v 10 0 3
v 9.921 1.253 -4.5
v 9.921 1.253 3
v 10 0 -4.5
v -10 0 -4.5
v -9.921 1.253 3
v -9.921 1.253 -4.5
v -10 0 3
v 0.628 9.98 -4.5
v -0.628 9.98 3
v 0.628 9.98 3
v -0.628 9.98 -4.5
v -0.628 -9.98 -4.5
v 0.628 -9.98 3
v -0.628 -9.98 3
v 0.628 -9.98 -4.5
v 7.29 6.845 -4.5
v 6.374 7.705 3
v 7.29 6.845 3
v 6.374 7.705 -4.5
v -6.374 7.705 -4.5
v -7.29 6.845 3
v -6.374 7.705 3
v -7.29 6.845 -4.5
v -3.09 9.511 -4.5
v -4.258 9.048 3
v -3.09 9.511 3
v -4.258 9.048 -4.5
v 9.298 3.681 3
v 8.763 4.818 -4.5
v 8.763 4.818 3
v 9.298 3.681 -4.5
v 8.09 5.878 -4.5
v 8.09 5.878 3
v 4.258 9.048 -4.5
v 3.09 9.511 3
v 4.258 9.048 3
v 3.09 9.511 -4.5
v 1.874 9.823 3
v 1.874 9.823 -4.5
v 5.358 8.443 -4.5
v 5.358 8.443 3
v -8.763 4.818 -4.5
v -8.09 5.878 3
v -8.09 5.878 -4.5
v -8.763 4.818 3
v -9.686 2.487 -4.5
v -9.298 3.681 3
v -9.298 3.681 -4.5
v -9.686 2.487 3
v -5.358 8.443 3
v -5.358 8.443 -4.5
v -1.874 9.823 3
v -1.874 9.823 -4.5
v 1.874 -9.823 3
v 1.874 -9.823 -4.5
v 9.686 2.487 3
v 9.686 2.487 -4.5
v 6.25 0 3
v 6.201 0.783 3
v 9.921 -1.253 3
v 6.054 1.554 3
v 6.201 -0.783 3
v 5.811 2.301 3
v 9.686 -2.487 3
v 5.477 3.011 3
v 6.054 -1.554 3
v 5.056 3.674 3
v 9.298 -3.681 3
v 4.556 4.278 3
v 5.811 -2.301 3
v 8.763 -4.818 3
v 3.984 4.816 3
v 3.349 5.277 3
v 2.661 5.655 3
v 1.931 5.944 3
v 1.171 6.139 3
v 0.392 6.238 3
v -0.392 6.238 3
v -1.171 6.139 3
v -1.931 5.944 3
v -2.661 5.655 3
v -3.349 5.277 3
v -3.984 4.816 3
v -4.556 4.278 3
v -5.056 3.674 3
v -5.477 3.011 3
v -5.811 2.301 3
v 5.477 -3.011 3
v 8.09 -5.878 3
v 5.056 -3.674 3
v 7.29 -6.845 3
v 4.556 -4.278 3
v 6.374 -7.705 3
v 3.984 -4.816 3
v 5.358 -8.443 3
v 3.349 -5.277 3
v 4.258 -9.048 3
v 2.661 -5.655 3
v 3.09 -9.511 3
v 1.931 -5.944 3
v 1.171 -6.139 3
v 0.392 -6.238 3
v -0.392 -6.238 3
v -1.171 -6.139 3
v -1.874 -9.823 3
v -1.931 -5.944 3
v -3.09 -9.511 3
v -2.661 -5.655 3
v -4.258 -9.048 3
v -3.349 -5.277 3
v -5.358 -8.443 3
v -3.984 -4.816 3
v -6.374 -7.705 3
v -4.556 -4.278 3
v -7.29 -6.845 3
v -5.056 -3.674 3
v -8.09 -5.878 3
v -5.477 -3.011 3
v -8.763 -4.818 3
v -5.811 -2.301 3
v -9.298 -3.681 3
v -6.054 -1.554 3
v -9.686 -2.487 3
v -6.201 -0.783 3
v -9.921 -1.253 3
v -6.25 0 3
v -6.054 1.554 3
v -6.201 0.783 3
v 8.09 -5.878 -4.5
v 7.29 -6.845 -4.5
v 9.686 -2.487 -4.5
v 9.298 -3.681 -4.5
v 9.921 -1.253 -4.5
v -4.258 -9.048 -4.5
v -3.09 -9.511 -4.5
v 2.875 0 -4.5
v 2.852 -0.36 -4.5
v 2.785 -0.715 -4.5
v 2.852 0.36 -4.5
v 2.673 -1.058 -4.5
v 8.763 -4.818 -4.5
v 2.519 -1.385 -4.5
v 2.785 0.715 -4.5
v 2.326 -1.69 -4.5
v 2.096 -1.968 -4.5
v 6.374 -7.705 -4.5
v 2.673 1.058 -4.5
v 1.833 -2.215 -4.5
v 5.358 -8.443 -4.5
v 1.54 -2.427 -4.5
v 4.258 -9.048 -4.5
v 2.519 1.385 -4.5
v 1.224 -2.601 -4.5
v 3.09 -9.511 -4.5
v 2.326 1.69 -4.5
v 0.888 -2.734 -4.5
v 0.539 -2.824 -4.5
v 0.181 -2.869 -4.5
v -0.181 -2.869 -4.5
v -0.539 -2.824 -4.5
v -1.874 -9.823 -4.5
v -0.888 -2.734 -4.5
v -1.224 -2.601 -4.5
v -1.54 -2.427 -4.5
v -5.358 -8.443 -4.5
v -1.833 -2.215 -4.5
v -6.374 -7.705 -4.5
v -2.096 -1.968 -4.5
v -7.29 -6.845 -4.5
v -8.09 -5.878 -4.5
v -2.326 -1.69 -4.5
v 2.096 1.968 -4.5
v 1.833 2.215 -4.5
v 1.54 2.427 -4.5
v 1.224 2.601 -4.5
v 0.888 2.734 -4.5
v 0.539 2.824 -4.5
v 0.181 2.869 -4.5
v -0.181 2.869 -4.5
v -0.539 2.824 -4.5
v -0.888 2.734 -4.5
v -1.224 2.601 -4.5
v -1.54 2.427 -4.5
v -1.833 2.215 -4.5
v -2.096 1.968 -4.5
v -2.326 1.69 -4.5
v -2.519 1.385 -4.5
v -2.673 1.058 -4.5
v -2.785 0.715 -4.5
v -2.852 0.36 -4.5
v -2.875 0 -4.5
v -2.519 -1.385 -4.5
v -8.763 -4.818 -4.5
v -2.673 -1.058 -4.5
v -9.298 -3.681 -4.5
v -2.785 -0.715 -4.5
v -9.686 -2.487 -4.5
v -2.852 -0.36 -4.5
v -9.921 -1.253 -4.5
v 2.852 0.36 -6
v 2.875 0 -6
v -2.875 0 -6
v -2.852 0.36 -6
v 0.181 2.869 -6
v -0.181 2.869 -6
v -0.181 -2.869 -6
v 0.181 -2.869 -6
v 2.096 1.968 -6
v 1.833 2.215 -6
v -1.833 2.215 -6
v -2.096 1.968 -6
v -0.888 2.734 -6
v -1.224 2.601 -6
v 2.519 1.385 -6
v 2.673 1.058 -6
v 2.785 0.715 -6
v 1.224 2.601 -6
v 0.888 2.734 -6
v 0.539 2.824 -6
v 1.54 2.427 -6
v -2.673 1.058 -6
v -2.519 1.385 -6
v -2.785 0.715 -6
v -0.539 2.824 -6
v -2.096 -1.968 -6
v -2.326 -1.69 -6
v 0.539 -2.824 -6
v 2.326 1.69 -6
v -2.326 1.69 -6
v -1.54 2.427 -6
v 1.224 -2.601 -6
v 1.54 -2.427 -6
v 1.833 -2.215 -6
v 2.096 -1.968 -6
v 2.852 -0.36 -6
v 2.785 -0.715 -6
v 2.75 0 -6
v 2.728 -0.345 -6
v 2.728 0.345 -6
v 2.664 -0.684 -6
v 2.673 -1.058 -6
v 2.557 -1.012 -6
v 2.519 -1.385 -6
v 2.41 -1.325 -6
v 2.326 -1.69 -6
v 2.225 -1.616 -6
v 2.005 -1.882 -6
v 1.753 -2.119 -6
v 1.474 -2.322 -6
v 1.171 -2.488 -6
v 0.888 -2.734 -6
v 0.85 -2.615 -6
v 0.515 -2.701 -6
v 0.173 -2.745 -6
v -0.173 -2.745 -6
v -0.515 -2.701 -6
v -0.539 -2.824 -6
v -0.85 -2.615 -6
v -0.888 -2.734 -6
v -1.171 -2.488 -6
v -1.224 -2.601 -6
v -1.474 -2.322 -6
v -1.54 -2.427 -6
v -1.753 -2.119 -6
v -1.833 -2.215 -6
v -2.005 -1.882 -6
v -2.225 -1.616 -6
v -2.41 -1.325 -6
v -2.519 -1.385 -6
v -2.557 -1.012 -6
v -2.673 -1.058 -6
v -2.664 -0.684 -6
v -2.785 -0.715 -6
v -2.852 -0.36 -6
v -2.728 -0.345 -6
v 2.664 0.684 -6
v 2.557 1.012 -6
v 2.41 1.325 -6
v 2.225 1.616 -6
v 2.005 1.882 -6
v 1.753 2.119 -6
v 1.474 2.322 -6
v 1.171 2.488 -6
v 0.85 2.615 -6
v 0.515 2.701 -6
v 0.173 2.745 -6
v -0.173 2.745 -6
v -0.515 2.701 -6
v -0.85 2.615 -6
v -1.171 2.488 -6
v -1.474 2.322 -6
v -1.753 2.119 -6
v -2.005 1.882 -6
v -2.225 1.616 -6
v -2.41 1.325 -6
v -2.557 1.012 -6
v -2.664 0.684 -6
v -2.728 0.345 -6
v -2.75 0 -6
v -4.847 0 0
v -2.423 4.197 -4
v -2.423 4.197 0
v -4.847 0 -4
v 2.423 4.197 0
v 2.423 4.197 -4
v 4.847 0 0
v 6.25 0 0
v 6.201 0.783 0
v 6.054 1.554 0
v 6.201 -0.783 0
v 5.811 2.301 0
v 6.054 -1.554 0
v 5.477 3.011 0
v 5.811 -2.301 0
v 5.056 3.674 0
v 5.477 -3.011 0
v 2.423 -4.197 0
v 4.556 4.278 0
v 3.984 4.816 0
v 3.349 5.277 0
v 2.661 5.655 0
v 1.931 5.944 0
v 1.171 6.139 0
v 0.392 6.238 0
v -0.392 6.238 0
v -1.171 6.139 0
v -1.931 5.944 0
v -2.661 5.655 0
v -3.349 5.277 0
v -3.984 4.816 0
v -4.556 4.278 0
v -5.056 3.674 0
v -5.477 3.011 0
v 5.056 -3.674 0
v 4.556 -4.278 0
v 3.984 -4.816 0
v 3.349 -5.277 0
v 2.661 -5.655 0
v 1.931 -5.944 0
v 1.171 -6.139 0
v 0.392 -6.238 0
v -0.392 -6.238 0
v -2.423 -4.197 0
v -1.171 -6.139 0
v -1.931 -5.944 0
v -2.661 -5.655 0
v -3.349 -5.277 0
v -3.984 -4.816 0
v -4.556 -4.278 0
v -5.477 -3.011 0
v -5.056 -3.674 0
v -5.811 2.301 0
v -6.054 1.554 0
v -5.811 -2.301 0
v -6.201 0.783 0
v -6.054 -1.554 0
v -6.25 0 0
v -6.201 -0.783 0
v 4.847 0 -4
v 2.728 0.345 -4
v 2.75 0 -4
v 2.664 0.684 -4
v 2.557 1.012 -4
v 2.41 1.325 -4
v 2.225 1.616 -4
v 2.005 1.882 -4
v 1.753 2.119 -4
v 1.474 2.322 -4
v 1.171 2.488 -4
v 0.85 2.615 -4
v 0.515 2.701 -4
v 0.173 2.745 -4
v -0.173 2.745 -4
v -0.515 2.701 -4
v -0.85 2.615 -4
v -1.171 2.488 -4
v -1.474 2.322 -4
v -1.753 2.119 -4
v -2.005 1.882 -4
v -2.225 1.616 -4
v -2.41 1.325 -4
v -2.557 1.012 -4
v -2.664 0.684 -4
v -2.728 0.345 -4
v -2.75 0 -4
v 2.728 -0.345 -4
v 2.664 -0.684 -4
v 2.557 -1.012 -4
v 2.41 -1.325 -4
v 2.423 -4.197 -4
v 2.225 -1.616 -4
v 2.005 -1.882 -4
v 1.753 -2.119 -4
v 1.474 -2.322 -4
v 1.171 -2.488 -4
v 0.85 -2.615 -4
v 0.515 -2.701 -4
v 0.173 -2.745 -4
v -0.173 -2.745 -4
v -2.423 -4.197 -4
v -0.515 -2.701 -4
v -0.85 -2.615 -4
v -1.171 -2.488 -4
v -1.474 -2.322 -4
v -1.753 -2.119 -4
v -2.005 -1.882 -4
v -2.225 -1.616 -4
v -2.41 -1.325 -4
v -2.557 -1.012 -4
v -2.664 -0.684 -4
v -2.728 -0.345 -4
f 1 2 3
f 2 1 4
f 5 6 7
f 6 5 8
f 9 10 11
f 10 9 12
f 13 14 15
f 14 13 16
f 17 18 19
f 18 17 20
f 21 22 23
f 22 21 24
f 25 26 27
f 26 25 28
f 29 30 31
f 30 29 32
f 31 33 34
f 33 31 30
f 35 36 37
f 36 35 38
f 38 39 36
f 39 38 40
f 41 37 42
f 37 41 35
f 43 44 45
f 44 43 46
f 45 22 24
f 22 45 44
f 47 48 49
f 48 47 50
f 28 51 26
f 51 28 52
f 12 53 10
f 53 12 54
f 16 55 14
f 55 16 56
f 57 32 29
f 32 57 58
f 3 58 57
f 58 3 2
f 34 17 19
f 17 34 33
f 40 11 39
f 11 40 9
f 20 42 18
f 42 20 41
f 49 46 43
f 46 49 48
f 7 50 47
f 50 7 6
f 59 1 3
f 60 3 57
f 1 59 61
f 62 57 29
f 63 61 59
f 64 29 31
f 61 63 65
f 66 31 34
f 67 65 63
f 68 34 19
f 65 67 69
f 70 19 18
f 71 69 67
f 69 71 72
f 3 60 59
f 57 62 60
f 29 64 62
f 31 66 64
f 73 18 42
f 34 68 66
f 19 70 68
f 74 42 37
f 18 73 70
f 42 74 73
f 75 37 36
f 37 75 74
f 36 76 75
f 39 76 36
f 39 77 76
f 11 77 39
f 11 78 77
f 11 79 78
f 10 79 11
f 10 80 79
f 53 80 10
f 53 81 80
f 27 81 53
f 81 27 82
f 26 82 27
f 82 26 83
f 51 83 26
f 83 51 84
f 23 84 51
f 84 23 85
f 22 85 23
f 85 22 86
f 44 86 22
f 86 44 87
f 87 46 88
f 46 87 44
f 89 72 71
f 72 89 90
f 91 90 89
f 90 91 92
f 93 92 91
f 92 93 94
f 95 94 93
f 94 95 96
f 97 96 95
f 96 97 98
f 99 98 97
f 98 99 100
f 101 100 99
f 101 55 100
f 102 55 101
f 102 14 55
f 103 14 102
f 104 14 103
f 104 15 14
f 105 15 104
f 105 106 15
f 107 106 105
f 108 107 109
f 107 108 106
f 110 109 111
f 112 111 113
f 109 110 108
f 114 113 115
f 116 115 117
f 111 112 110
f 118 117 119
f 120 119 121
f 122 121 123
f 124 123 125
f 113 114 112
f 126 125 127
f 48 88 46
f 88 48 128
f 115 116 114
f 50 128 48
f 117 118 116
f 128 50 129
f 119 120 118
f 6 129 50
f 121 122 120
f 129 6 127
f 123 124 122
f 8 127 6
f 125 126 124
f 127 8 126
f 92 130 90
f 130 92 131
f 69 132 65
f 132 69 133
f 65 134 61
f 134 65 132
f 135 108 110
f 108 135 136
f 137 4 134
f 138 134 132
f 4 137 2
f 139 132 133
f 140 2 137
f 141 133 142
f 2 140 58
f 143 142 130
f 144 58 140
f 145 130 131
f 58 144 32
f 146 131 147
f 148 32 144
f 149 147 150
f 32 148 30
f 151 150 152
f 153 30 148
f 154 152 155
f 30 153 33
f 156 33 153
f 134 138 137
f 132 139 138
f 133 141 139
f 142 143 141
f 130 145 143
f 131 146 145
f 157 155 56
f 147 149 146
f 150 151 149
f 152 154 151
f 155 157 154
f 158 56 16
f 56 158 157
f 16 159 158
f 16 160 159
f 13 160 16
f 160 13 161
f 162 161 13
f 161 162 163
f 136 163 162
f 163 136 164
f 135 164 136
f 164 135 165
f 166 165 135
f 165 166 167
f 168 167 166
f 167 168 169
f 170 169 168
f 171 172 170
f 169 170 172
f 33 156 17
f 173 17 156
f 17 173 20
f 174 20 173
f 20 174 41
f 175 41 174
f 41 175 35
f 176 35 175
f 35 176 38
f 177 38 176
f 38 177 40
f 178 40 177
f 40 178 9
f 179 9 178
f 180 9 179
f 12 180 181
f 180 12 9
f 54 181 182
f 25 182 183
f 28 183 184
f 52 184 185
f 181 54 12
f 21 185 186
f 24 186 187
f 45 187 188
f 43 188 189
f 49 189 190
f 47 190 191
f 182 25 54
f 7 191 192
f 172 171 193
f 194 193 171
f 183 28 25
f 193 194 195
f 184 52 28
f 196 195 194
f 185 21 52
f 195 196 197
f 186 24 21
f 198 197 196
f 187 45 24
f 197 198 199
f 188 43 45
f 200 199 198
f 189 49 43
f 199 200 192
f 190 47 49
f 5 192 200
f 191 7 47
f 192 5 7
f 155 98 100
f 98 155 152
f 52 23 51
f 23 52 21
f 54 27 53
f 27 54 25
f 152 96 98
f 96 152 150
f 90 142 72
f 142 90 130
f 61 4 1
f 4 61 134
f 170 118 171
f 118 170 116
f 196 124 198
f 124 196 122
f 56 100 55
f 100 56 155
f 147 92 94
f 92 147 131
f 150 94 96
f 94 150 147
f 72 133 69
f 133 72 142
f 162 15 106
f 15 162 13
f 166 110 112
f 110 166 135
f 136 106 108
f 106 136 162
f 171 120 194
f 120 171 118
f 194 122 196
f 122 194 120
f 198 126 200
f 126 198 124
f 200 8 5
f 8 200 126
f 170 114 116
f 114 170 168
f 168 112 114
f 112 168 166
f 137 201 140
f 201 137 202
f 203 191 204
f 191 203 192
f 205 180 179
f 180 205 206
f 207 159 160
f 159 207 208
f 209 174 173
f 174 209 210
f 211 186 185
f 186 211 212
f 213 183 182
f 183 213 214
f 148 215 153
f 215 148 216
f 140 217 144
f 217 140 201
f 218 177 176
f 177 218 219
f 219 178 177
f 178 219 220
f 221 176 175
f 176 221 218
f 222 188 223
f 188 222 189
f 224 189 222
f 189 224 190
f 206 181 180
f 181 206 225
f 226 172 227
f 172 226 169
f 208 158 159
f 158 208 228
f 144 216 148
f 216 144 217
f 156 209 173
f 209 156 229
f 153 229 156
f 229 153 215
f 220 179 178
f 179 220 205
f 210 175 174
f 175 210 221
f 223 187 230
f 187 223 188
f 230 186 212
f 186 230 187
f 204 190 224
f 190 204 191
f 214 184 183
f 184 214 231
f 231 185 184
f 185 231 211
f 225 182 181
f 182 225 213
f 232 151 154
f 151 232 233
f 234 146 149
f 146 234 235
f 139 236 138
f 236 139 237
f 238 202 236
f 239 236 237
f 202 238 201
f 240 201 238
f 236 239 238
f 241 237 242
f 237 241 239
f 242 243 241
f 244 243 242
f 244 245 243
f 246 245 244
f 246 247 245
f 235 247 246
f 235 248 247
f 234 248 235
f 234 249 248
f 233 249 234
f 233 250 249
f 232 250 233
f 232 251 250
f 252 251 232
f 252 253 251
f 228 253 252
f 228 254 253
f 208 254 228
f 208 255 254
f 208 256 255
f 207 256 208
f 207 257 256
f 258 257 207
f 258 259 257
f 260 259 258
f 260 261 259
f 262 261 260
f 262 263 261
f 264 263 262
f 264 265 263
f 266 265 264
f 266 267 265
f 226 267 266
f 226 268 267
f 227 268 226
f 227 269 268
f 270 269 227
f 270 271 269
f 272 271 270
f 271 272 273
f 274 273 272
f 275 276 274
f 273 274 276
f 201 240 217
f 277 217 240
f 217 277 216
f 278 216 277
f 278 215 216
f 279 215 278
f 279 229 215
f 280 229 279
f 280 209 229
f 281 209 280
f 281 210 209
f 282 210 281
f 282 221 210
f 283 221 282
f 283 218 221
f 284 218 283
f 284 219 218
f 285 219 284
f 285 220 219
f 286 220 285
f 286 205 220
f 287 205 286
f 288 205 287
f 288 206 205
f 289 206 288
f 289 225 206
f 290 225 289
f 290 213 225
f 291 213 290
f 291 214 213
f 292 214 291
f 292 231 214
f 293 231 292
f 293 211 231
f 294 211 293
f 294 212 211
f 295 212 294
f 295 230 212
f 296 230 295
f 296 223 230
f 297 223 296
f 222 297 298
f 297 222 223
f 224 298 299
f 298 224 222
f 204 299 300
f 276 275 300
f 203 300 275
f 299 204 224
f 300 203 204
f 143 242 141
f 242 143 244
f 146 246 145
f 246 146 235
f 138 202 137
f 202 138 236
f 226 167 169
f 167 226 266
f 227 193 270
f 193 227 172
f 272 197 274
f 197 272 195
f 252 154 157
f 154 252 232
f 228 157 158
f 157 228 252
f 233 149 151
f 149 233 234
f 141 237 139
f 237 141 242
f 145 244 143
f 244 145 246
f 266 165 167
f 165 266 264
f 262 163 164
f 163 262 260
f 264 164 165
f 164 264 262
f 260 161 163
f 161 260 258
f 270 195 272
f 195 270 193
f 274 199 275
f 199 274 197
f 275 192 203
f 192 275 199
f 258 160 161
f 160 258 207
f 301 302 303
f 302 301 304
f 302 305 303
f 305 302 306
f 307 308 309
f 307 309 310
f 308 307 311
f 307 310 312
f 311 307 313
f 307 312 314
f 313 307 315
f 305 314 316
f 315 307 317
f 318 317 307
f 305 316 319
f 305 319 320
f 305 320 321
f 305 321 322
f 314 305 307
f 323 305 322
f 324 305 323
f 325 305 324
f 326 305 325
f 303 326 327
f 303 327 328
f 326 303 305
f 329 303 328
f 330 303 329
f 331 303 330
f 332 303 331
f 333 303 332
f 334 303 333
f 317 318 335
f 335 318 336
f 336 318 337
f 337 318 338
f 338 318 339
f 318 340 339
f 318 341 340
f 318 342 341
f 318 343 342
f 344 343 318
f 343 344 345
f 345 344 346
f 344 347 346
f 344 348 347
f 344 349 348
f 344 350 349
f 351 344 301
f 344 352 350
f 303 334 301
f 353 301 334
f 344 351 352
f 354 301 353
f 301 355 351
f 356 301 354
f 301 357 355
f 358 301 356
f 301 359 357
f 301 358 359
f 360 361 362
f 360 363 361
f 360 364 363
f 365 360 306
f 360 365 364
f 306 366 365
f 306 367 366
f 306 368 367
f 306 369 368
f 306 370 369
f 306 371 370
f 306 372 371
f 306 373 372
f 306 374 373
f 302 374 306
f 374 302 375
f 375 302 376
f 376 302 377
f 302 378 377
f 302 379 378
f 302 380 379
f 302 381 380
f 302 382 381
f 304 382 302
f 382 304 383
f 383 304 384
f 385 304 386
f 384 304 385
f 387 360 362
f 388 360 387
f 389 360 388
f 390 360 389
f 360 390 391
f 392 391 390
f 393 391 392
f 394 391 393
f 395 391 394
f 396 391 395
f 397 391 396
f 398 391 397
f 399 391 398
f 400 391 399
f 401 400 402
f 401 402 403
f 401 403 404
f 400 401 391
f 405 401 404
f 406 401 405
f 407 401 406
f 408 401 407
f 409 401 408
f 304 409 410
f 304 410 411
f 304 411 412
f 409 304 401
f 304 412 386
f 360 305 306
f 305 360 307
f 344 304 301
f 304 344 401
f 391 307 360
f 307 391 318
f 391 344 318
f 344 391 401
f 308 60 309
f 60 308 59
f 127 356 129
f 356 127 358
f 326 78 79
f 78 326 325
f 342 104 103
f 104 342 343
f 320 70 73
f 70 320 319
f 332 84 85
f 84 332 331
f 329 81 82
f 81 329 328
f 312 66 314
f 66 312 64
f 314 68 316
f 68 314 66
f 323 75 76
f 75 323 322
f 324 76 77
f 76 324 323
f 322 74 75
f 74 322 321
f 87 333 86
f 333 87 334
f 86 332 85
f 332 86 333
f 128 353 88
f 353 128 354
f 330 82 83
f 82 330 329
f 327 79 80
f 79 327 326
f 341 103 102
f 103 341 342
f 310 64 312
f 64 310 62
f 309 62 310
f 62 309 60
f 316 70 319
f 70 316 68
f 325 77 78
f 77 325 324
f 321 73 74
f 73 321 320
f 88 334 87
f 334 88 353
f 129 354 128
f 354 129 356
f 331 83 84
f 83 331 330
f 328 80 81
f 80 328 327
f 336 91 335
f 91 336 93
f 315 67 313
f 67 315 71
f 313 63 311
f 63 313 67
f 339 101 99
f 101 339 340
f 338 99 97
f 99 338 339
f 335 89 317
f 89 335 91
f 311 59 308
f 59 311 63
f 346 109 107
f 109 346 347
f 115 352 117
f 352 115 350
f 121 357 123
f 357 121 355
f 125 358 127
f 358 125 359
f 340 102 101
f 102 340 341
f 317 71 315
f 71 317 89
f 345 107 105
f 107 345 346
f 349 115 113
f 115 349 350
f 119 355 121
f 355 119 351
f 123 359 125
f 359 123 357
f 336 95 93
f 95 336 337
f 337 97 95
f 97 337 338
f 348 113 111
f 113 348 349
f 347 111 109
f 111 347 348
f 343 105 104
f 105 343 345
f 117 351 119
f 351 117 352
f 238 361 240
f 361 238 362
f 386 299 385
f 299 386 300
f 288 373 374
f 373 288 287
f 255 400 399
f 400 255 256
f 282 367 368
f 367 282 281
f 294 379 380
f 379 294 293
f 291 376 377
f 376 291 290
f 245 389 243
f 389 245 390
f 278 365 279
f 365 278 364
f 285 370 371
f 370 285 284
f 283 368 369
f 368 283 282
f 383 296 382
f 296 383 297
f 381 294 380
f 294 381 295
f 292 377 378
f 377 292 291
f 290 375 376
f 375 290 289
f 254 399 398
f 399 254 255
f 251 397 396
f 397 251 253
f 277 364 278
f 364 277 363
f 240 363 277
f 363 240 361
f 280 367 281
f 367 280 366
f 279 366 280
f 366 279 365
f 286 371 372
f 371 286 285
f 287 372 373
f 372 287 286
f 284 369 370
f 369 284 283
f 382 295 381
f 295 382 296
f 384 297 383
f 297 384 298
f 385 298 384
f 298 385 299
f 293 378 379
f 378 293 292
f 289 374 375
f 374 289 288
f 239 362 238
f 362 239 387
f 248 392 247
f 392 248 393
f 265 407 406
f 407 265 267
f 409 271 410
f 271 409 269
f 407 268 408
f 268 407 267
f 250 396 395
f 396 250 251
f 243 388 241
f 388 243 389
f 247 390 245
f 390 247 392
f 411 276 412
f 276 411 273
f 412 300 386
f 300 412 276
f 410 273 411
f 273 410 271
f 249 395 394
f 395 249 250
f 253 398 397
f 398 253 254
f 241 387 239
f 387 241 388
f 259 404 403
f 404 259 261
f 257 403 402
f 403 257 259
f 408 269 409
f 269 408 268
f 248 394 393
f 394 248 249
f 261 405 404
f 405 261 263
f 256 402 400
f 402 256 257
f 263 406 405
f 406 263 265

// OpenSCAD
$fn = 50;

difference() {
	union() {
		translate(v = [0, 0, -4.5]) {
			cylinder(h = 7.5, r = 10.0);
		}
		#translate(v = [0, 0, -6.0]) {
			cylinder(h = 6, r = 2.875);
		}
	}
	union() {
		translate(v = [0, 0, 0]) {
			rotate(a = [0, 0, 0]) {
				difference() {
					union() {
						translate(v = [0, 0, -4]) {
							linear_extrude(height = 4) {
								polygon(points = [[4.8468, 0.0], [2.4234000000000004, 4.197451927062417], [-2.423399999999999, 4.197451927062417], [-4.8468, 5.935618106107392e-16], [-2.423400000000002, -4.197451927062416], [2.423399999999997, -4.197451927062419]]);
							}
						}
					}
					union();
				}
			}
		}
		#cylinder(h = 3, r = 6.25);
		#translate(v = [0, 0, -100.0]) {
			cylinder(h = 200, r = 2.75);
		}
	}
}
